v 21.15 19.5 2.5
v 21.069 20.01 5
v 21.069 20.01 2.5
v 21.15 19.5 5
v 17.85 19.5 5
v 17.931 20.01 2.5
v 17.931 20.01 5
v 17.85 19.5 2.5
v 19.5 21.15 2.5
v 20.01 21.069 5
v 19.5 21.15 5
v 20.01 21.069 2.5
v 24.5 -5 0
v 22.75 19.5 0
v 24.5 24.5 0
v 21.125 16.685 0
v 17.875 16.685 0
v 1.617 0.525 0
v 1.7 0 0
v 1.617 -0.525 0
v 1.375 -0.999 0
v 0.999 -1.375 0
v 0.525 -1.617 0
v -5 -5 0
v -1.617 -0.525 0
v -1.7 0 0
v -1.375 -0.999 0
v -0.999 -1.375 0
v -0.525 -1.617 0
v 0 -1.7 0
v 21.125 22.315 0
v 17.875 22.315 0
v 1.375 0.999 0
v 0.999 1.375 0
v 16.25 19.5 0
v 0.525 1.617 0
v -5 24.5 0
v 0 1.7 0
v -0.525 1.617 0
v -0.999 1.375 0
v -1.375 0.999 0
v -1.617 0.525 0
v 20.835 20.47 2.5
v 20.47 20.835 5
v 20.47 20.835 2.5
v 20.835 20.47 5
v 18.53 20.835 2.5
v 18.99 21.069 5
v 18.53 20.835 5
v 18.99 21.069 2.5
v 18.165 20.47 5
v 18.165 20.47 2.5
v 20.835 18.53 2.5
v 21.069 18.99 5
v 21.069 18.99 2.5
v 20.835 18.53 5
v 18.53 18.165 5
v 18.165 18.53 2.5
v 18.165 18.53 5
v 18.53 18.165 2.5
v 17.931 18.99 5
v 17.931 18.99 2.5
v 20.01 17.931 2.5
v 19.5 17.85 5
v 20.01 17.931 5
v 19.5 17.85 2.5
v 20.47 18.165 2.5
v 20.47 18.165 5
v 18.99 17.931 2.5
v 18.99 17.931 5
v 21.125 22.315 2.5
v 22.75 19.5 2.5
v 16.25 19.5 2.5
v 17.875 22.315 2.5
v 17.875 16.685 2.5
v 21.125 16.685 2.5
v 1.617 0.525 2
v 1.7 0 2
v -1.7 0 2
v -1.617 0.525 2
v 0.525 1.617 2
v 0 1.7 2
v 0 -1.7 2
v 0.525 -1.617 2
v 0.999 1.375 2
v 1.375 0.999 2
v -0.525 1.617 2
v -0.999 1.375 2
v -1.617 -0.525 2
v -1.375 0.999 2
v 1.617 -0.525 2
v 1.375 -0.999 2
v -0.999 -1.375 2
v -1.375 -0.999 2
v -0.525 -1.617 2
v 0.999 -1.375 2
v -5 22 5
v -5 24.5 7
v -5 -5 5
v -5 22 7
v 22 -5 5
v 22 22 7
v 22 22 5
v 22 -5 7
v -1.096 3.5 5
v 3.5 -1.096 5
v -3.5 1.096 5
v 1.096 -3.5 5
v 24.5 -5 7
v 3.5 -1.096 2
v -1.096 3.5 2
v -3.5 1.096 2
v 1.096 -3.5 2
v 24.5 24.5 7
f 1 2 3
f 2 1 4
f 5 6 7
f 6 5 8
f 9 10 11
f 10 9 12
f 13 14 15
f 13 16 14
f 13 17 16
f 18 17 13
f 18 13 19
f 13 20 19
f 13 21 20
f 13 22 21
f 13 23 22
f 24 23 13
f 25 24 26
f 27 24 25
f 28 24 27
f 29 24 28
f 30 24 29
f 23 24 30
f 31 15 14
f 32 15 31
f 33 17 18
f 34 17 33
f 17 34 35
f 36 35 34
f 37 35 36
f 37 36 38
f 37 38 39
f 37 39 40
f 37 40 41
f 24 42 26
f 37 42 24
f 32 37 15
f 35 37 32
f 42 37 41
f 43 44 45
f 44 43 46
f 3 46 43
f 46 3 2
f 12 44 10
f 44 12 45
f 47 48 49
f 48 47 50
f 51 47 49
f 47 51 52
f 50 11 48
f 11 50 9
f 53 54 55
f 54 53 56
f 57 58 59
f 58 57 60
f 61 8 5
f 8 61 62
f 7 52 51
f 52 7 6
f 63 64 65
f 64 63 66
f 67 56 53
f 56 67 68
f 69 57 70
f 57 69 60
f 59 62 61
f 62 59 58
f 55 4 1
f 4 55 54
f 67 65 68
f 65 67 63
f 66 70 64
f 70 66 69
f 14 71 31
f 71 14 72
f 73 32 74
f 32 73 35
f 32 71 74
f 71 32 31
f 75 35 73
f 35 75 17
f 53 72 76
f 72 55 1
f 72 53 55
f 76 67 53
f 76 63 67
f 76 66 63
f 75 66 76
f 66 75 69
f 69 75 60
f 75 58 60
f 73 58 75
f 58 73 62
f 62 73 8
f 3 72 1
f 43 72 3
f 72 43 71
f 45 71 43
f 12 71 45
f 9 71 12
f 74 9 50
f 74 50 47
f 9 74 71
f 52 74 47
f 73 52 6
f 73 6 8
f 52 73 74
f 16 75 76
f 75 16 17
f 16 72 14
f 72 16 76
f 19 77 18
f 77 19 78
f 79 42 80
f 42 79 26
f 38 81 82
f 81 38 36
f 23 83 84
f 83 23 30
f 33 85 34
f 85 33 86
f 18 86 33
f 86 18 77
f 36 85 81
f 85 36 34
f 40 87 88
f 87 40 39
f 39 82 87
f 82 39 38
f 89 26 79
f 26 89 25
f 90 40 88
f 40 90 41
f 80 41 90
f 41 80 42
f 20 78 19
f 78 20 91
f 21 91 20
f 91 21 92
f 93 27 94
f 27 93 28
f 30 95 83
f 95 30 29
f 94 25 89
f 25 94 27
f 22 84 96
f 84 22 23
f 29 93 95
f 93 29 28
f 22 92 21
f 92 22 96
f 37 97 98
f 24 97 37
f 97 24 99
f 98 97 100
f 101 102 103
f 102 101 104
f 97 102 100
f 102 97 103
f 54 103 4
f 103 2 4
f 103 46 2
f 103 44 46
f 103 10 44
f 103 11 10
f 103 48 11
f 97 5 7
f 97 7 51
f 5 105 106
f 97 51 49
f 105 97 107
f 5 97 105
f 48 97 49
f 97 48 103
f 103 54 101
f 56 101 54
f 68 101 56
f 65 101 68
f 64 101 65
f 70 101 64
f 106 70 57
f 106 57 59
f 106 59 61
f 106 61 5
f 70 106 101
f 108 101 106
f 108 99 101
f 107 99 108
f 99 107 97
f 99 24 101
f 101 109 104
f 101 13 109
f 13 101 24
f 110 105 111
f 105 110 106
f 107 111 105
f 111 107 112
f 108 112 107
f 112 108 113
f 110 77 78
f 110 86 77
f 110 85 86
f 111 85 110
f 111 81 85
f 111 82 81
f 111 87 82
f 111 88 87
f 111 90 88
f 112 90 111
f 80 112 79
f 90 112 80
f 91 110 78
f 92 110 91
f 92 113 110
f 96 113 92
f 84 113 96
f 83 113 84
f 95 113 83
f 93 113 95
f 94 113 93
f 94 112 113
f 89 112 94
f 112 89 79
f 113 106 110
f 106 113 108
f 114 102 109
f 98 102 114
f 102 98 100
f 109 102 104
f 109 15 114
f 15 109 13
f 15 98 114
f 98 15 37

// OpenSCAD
CAMA_CALIENTE_DIAM_AGUJ = 3.3;
CAMA_CALIENTE_TUER_ALTO = 2.5;
CAMA_CALIENTE_TUER_DIAM = 6.5;
CAMA_CALIENTE_MARGEN    = 2.5;
CAMA_CALIENTE_ALTO      = 2;
CAMA_CALIENTE_DIST_AGUJ = 209;

BASE_Z_DIST_AGUJ        = 170;
BASE_Z_DIAM_AGUJ        = 3.4 ;
BASE_Z_CAB_TOR_DIAM     = 6.5;
BASE_Z_CAB_TOR_ALTO     = 3;

ADAPTADOR_MARGEN        = 3;
ADAPTADOR_ALTO          = 2+BASE_Z_CAB_TOR_ALTO+CAMA_CALIENTE_ALTO;


$fn = 20;

module adaptador()
{
    difference(){
        union() {
            translate([-CAMA_CALIENTE_MARGEN*2, -CAMA_CALIENTE_MARGEN*2, 0]) cube([
                (CAMA_CALIENTE_DIST_AGUJ/2)-(BASE_Z_DIST_AGUJ/2) + CAMA_CALIENTE_MARGEN *4,
                (CAMA_CALIENTE_DIST_AGUJ/2)-(BASE_Z_DIST_AGUJ/2) + CAMA_CALIENTE_MARGEN *4,
                ADAPTADOR_ALTO
            ]);
        }
        #cylinder(h=50, d=BASE_Z_DIAM_AGUJ);
        translate([(CAMA_CALIENTE_DIST_AGUJ/2)-(BASE_Z_DIST_AGUJ/2), (CAMA_CALIENTE_DIST_AGUJ/2)-(BASE_Z_DIST_AGUJ/2)]) {
            #cylinder(h=50, d=CAMA_CALIENTE_DIAM_AGUJ);
            #cylinder(h=CAMA_CALIENTE_TUER_ALTO, d=CAMA_CALIENTE_TUER_DIAM, $fn=6);
        }
        translate([-CAMA_CALIENTE_MARGEN*2, -CAMA_CALIENTE_MARGEN*2, ADAPTADOR_ALTO-CAMA_CALIENTE_ALTO])
            #cube([
                (CAMA_CALIENTE_DIST_AGUJ/2)-(BASE_Z_DIST_AGUJ/2) + CAMA_CALIENTE_MARGEN *3,
                (CAMA_CALIENTE_DIST_AGUJ/2)-(BASE_Z_DIST_AGUJ/2) + CAMA_CALIENTE_MARGEN *3,
                10
            ]);
        translate([0,0,ADAPTADOR_ALTO-CAMA_CALIENTE_ALTO-BASE_Z_CAB_TOR_ALTO/2]) rotate([0,0,45])
            #cube([BASE_Z_DIAM_AGUJ, BASE_Z_CAB_TOR_DIAM, BASE_Z_CAB_TOR_ALTO], center=true);
    }
}

adaptador();
